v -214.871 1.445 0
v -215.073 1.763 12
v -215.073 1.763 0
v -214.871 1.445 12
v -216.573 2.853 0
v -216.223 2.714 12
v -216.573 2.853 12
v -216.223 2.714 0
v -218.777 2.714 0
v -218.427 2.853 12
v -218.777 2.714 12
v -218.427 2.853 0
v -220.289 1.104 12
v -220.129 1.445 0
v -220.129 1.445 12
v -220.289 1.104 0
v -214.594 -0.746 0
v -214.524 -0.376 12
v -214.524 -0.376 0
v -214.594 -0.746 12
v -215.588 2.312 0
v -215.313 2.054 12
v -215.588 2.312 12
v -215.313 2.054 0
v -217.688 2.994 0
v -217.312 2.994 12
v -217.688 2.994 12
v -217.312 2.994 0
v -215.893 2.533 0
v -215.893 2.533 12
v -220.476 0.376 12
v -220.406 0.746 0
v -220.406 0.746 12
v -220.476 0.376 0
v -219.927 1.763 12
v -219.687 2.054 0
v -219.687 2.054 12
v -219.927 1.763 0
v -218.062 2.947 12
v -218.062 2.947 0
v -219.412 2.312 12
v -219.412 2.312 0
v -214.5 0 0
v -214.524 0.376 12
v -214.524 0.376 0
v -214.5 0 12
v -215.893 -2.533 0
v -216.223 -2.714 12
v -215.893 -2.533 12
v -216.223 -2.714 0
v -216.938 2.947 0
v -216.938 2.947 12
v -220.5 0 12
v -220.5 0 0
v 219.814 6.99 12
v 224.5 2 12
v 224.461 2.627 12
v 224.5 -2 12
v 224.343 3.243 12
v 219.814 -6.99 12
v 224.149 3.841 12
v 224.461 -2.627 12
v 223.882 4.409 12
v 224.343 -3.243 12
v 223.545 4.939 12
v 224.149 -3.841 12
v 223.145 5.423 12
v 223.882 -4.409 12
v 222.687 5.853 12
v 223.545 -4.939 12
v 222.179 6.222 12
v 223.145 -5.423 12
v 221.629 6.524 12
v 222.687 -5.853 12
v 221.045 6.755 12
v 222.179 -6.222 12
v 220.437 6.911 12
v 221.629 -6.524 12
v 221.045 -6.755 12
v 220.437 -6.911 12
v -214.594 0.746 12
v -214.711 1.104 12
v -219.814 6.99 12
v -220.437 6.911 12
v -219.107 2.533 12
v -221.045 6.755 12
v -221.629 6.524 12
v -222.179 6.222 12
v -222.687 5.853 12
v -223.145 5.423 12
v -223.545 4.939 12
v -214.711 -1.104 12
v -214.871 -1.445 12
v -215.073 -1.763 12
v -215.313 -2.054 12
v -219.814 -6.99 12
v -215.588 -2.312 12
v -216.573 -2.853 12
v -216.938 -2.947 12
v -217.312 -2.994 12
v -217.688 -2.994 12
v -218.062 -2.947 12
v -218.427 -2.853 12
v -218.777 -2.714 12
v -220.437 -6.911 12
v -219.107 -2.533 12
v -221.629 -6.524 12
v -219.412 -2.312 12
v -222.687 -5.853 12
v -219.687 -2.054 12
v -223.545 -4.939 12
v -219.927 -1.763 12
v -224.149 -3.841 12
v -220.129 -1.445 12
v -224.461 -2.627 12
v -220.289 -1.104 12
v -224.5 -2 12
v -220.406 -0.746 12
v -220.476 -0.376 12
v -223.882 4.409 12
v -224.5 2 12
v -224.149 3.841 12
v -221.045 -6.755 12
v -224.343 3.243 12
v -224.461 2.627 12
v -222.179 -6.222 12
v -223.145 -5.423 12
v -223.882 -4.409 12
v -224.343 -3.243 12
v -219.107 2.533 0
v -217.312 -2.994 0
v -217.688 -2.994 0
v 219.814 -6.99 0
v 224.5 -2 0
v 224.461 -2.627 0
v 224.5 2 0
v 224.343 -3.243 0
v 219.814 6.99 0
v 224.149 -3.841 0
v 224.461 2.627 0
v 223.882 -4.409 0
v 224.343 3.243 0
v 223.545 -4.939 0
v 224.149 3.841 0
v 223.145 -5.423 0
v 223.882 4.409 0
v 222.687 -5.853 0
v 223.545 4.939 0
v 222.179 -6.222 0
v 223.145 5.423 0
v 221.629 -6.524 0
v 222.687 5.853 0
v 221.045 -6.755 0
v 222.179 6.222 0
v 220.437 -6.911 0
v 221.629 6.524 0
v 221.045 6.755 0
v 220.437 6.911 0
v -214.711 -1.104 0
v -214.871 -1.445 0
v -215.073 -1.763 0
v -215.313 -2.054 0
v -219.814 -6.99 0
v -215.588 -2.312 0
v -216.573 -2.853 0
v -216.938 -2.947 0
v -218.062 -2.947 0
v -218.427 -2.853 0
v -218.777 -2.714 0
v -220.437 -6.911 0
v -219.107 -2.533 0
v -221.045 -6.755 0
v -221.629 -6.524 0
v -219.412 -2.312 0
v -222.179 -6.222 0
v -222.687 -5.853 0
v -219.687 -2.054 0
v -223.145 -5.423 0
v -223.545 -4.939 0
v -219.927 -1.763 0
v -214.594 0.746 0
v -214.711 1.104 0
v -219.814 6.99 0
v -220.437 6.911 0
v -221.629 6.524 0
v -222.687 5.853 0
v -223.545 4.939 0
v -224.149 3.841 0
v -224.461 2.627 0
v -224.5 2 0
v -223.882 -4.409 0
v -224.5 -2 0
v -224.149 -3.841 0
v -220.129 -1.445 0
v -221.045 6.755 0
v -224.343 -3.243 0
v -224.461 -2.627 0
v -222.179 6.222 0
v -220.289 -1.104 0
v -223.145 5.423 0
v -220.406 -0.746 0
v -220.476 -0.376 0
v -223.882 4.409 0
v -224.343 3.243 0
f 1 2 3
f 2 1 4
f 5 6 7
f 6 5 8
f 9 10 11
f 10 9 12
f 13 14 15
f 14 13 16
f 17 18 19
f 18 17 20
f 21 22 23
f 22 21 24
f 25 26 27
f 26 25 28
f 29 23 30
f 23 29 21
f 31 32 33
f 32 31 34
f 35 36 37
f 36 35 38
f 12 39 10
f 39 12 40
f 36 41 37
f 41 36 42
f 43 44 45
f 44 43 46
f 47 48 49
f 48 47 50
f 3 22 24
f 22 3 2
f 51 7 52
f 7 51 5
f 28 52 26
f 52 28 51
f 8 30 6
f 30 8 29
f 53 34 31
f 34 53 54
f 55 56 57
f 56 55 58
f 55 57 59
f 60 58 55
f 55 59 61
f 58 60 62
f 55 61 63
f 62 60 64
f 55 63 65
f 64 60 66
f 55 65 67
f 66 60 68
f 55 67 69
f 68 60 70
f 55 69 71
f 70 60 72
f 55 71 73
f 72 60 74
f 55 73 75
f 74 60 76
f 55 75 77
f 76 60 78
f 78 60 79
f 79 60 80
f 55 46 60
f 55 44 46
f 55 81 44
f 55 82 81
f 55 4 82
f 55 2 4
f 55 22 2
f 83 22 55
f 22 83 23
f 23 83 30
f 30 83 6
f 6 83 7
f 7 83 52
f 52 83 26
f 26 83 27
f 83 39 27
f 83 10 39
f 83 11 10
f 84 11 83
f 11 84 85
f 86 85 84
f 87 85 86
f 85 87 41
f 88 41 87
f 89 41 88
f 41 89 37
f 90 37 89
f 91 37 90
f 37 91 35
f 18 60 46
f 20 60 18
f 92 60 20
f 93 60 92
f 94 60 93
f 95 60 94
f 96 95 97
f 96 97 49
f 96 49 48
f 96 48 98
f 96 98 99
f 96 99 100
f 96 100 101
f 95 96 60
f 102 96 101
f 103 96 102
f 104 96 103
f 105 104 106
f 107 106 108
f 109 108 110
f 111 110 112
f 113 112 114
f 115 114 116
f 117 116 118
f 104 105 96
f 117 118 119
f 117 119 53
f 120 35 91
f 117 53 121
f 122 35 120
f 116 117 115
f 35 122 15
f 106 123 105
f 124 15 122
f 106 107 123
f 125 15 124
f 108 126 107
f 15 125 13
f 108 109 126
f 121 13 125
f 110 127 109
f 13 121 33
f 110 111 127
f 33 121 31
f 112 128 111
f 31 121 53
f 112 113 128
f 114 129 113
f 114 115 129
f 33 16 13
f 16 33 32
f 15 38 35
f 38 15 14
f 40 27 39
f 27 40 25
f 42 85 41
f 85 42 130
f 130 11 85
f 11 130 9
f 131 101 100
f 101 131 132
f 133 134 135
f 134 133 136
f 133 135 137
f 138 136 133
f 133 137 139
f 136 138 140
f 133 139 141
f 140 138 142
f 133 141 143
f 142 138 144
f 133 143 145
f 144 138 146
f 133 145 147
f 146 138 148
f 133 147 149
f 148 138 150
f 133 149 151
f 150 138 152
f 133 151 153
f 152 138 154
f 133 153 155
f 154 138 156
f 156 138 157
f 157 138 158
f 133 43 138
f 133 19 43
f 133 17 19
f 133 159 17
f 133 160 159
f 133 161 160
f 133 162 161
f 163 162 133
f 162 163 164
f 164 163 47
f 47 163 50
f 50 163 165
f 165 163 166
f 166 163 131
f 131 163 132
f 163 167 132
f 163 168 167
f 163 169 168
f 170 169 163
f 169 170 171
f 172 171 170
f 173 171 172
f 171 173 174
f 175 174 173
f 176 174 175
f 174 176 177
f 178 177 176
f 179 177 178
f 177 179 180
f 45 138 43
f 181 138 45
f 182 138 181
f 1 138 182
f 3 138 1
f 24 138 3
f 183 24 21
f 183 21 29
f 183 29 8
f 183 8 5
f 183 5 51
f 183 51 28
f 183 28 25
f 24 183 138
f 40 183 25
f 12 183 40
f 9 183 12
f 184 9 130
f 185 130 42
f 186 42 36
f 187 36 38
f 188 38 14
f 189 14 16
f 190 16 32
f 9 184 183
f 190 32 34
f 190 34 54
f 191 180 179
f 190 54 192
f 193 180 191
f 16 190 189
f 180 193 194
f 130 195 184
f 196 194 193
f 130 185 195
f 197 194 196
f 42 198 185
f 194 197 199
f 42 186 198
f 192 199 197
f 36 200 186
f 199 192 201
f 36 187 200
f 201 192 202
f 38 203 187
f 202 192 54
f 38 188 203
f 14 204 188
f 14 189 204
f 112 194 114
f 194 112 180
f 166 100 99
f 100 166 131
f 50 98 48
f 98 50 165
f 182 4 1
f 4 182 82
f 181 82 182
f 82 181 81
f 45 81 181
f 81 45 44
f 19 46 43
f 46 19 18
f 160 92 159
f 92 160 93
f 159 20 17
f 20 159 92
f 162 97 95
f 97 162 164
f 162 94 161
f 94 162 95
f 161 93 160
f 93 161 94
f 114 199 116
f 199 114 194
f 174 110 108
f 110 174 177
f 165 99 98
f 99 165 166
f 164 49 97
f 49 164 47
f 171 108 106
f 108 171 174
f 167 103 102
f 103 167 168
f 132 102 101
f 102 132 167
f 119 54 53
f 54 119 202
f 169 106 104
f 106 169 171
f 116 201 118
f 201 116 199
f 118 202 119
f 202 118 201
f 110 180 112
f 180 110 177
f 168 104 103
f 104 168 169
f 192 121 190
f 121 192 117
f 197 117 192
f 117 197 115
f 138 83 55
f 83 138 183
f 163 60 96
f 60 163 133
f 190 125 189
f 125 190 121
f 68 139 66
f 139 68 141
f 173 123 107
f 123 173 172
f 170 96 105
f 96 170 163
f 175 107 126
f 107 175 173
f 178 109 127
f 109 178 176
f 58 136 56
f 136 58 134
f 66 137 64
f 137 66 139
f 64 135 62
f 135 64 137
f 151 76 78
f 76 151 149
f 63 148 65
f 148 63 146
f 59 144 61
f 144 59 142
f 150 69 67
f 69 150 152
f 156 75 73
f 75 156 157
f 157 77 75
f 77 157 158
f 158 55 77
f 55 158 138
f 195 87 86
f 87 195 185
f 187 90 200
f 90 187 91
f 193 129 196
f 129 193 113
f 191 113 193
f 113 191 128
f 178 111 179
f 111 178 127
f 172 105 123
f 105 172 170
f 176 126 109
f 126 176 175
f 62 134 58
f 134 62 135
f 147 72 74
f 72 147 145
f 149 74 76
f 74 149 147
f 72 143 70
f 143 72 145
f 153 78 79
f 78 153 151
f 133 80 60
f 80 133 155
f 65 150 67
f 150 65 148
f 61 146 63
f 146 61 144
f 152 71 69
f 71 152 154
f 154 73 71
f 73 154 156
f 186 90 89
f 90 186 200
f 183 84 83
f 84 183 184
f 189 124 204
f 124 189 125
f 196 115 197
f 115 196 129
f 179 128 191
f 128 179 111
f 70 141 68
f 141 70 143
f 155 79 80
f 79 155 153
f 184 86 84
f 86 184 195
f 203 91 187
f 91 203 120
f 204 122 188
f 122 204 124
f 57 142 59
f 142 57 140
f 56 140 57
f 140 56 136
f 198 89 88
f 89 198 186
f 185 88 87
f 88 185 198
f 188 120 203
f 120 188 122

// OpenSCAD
$fn = 50;


difference() {
	union() {
		hull() {
			translate(v = [-219.5000000000, 2.0000000000, 0]) {
				cylinder(h = 12, r = 5);
			}
			translate(v = [219.5000000000, 2.0000000000, 0]) {
				cylinder(h = 12, r = 5);
			}
			translate(v = [-219.5000000000, -2.0000000000, 0]) {
				cylinder(h = 12, r = 5);
			}
			translate(v = [219.5000000000, -2.0000000000, 0]) {
				cylinder(h = 12, r = 5);
			}
		}
	}
	union() {
		translate(v = [-217.5000000000, 0.0000000000, 0]) {
			cylinder(h = 12, r = 3.0000000000);
		}
		translate(v = [-217.5000000000, 0.0000000000, 0]) {
			cylinder(h = 12, r = 1.5000000000);
		}
		translate(v = [-217.5000000000, 0.0000000000, 0]) {
			cylinder(h = 12, r = 1.5000000000);
		}
		translate(v = [-217.5000000000, 0.0000000000, 0]) {
			cylinder(h = 12, r = 1.5000000000);
		}
	}
}
